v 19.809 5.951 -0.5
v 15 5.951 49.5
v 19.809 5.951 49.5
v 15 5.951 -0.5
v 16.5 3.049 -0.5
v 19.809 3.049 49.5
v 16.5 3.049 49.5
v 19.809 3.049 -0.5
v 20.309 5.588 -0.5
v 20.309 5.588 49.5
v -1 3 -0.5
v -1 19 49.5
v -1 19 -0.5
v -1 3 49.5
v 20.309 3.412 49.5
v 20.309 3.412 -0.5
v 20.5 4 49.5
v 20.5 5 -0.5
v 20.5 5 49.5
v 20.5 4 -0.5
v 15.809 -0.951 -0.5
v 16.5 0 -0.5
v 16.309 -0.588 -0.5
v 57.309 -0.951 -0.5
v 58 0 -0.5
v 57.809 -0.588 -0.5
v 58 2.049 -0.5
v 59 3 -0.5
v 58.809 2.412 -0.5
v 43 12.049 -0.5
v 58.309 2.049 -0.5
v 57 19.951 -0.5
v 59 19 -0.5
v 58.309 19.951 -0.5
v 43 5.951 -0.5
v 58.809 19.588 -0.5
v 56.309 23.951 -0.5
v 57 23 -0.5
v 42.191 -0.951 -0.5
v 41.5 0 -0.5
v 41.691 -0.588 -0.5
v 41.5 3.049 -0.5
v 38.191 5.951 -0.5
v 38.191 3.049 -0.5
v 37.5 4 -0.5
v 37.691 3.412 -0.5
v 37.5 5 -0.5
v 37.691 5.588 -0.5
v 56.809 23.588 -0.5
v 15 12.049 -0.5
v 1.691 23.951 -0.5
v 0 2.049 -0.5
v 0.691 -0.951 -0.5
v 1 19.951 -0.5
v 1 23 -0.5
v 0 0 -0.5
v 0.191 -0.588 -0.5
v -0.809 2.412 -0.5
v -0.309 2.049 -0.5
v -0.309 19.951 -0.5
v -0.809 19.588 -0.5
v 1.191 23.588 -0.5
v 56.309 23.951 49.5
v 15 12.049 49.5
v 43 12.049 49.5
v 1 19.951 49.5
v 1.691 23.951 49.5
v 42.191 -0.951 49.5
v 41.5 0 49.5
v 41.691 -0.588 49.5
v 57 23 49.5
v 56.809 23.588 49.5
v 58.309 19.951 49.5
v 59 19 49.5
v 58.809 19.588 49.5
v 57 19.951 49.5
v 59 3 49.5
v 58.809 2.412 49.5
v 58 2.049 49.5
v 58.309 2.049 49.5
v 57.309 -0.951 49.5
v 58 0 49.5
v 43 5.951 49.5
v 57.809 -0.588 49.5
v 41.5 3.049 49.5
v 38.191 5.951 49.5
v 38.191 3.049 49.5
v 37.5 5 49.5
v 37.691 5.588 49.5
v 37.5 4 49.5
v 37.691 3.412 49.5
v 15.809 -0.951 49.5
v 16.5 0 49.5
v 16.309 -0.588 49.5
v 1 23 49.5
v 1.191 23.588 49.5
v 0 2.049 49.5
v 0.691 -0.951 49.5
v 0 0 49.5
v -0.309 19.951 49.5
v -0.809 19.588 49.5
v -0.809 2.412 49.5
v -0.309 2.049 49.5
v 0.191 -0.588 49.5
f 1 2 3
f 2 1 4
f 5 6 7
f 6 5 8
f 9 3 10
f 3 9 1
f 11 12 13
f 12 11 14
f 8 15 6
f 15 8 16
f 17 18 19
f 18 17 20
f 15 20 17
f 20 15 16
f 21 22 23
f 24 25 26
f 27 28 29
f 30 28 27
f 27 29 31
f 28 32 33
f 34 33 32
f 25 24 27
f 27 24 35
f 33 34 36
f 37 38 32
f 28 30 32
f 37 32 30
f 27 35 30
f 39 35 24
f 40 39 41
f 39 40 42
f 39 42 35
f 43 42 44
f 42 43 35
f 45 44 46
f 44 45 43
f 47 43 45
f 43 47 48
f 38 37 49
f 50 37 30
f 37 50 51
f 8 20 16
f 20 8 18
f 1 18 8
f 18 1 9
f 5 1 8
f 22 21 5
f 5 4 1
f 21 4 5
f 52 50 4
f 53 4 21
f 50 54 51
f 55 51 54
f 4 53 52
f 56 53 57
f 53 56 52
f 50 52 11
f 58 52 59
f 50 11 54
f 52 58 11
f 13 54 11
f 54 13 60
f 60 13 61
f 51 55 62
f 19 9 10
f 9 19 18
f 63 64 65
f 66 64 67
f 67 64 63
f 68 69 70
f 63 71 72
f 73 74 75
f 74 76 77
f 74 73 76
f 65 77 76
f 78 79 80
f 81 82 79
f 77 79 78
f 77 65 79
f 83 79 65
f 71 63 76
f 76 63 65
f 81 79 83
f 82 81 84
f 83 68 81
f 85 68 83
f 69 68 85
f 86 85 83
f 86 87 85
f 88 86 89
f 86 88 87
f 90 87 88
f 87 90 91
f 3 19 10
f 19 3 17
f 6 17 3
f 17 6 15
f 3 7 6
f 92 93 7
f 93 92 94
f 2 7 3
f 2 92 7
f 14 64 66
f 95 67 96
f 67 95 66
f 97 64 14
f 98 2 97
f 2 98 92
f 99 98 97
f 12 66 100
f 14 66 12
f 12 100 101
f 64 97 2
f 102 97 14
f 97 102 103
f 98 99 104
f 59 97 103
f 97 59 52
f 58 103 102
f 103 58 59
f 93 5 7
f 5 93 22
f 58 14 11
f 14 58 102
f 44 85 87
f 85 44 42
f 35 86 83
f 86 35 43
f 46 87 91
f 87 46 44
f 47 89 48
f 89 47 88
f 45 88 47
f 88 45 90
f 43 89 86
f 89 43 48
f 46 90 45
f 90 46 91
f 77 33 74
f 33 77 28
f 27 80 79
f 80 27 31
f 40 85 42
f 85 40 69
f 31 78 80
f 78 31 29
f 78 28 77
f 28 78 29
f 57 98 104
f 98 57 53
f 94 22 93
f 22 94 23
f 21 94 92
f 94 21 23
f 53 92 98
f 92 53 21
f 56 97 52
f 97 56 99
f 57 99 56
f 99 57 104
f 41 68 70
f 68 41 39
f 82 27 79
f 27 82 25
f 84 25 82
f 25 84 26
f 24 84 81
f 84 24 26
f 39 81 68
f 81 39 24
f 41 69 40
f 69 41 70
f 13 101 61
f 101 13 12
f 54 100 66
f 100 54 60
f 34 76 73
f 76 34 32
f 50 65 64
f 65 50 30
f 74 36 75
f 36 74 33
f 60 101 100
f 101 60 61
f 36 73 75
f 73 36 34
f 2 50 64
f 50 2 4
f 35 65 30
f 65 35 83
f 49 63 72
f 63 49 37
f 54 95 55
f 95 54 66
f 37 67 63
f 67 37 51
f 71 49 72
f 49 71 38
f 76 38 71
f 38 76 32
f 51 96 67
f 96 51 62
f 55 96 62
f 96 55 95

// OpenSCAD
$fn=10;

minkowski() {
difference() {
cube ([58, 23, 49]);
translate( [(58-27)/2, 0,0])
   cube( [27,4,49]);

translate( [0,0,0])
   cube( [1, 3 ,49]);
translate( [57,0,0])
   cube( [1,3 ,49]); 
    
translate( [(58-19)/2, 3,0])
   cube( [19,4,49]);    
translate( [(58-30)/2, 5,0])
   cube( [30,8,49]);
   
translate( [0,19,0])
   cube( [2, 5 ,49]);
translate( [56,19,0])
   cube( [2,5 ,49]);

   
//translate( [0, 0, 2])
//   cube( [60,27,49]);
}
cylinder(1, center=true);
}
